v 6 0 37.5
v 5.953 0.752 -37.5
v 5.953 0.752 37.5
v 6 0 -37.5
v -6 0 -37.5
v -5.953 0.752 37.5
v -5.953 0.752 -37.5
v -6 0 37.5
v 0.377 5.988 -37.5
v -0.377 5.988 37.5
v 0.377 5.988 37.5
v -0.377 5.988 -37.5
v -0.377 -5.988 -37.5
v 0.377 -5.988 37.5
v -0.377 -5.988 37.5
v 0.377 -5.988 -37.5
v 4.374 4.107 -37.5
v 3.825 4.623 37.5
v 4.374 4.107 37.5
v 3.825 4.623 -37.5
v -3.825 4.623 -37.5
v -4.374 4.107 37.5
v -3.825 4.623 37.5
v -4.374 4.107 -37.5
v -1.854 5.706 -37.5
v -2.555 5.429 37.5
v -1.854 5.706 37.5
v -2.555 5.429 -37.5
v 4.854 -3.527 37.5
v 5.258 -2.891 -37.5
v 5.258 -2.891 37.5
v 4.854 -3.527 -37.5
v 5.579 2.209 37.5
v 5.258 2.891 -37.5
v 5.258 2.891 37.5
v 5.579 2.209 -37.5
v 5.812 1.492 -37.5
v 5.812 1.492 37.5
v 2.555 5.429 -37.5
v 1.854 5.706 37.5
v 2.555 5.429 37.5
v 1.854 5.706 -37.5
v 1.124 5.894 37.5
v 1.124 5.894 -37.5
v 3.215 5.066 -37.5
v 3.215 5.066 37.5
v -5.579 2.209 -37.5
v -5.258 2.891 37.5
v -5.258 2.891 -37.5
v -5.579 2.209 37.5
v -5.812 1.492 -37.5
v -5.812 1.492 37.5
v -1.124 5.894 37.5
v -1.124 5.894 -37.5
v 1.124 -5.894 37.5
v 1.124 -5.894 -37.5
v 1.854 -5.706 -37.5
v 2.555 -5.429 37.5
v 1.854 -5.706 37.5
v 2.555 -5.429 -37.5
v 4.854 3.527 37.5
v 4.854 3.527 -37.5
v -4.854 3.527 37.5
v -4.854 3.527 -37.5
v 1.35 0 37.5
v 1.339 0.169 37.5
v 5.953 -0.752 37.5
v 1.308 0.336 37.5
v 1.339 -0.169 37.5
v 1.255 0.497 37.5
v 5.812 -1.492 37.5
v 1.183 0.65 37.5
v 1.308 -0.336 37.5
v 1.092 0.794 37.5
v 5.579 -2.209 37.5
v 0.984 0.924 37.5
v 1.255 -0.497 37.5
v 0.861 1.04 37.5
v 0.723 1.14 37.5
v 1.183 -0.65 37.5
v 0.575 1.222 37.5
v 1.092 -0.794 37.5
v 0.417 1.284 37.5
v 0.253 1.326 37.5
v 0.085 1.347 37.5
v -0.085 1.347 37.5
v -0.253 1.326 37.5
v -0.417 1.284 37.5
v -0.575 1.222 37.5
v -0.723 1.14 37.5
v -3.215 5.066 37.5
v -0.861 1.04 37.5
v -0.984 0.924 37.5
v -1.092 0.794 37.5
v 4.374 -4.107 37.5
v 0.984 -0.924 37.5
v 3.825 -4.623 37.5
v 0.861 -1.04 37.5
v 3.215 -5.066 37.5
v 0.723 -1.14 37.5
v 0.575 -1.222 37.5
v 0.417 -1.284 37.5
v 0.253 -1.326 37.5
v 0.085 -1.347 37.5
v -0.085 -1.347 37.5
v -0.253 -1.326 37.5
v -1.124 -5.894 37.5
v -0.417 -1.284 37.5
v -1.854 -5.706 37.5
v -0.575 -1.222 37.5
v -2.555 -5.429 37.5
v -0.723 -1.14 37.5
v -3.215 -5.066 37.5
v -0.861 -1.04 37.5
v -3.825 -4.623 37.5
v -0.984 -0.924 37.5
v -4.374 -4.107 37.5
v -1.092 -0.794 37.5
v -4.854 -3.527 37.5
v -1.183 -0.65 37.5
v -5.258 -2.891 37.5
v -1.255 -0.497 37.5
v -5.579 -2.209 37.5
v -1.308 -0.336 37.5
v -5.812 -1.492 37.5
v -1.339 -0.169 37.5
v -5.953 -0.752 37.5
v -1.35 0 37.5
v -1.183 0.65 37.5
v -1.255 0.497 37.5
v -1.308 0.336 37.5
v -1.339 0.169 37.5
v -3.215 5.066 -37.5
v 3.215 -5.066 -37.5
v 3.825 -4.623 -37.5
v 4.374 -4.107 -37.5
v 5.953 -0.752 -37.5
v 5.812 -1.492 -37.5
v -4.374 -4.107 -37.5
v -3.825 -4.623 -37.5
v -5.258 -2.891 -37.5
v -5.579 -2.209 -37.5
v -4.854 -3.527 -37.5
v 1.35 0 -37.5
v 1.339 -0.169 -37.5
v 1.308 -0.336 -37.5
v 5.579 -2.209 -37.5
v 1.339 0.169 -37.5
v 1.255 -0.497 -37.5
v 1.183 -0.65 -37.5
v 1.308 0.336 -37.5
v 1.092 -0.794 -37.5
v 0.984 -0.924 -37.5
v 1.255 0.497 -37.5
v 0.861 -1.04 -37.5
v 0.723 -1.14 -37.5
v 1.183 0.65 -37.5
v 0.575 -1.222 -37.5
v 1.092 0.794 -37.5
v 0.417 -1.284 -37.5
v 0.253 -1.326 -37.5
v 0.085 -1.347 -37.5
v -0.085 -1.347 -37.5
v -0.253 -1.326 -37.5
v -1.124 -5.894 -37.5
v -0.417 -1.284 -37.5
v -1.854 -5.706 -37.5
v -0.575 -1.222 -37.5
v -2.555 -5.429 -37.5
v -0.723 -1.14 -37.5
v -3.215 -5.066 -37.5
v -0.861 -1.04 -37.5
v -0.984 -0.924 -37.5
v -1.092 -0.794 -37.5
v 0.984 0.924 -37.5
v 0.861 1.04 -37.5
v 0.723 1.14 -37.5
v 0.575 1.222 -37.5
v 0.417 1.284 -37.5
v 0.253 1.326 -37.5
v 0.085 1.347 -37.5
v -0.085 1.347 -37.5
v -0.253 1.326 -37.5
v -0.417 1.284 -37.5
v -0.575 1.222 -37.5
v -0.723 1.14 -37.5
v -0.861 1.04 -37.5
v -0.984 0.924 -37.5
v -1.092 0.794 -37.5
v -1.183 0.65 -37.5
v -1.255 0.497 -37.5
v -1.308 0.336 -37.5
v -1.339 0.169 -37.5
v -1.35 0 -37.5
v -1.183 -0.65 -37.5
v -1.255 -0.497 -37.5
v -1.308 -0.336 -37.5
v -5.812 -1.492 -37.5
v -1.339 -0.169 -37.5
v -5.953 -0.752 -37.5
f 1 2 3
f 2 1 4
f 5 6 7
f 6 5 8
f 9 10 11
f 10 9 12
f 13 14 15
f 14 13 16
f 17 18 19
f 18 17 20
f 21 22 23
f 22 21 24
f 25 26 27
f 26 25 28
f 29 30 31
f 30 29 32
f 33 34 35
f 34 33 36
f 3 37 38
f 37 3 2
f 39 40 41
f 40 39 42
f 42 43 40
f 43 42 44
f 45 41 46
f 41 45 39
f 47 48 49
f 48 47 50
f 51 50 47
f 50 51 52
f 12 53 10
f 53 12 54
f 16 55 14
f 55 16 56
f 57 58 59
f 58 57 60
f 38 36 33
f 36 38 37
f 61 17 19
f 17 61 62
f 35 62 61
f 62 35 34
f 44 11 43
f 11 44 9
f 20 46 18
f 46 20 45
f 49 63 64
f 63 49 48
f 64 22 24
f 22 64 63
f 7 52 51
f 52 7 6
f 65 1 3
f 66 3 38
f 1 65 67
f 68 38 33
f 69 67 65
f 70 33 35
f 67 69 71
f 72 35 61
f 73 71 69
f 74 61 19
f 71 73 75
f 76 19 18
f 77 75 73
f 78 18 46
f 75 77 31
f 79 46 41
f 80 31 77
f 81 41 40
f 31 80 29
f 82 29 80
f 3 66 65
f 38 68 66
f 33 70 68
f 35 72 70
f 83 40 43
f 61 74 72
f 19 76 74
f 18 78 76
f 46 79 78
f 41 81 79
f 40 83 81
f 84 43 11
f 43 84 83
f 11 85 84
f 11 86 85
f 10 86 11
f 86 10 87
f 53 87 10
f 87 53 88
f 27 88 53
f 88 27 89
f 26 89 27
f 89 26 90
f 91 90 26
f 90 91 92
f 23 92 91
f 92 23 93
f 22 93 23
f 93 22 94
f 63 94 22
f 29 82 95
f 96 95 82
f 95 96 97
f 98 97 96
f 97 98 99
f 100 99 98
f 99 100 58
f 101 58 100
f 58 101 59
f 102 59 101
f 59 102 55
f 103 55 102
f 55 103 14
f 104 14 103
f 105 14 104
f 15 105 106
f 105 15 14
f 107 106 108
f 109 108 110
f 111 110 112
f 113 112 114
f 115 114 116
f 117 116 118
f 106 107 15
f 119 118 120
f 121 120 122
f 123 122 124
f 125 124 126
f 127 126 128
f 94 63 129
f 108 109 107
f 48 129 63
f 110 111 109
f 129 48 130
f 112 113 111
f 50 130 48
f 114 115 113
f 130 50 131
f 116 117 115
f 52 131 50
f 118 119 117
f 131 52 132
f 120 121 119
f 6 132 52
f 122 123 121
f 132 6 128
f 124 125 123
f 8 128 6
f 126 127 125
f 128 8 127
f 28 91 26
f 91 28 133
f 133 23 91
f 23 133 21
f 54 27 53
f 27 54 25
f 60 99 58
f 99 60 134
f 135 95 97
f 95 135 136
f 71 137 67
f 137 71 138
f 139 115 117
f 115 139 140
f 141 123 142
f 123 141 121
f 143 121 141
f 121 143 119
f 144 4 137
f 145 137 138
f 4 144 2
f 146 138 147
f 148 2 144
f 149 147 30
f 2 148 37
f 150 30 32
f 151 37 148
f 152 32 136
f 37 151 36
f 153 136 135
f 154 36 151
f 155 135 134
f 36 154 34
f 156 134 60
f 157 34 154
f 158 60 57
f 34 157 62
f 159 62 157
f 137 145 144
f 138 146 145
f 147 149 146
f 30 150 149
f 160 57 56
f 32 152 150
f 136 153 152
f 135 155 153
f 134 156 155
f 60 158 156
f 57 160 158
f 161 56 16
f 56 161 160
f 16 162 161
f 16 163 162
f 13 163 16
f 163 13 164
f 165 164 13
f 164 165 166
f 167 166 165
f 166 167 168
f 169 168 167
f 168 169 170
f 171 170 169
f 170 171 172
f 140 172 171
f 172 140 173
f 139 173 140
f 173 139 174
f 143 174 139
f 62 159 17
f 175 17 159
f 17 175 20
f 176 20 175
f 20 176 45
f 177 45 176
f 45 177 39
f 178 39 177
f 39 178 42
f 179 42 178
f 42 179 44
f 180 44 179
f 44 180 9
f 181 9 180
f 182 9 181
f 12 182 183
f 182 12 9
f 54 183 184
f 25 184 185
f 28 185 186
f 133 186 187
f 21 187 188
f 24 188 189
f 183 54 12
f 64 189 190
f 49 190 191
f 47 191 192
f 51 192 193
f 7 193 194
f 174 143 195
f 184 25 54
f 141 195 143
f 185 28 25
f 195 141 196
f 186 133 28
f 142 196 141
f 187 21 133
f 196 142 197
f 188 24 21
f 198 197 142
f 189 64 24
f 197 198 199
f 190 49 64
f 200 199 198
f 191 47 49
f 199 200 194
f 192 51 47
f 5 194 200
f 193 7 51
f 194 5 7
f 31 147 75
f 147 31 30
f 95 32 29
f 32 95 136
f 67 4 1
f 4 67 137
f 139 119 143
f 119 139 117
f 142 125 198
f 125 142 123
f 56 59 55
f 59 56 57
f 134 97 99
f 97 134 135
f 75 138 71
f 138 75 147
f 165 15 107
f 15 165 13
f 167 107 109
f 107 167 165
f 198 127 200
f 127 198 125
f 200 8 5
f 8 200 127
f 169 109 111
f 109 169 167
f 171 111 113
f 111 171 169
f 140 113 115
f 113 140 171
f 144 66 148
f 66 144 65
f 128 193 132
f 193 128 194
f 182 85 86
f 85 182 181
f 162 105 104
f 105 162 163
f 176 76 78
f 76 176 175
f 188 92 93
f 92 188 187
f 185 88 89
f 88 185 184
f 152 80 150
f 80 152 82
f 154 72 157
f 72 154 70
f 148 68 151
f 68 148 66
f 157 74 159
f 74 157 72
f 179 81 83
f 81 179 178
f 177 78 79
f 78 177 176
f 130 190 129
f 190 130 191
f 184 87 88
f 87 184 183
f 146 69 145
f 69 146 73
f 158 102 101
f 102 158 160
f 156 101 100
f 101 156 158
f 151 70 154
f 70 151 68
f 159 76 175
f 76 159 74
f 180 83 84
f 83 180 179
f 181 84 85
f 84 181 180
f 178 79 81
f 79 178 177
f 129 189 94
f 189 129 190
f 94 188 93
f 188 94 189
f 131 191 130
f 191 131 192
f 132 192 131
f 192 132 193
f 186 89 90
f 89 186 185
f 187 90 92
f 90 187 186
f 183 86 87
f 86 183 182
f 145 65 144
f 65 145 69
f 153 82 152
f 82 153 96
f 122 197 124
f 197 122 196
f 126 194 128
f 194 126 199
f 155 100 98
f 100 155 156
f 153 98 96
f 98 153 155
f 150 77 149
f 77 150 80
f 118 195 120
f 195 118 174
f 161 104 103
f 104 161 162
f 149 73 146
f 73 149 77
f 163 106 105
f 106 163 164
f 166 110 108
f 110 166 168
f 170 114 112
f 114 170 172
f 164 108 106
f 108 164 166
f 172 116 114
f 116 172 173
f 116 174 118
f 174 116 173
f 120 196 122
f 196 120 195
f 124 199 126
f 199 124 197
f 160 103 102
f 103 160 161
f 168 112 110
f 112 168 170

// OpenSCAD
$fn = 50;


difference() {
	union() {
		translate(v = [0, 0, -37.5000000000]) {
			cylinder(h = 75, r = 6.0000000000);
		}
	}
	union() {
		translate(v = [0, 0, -100.0000000000]) {
			cylinder(h = 200, r = 1.3500000000);
		}
	}
}
